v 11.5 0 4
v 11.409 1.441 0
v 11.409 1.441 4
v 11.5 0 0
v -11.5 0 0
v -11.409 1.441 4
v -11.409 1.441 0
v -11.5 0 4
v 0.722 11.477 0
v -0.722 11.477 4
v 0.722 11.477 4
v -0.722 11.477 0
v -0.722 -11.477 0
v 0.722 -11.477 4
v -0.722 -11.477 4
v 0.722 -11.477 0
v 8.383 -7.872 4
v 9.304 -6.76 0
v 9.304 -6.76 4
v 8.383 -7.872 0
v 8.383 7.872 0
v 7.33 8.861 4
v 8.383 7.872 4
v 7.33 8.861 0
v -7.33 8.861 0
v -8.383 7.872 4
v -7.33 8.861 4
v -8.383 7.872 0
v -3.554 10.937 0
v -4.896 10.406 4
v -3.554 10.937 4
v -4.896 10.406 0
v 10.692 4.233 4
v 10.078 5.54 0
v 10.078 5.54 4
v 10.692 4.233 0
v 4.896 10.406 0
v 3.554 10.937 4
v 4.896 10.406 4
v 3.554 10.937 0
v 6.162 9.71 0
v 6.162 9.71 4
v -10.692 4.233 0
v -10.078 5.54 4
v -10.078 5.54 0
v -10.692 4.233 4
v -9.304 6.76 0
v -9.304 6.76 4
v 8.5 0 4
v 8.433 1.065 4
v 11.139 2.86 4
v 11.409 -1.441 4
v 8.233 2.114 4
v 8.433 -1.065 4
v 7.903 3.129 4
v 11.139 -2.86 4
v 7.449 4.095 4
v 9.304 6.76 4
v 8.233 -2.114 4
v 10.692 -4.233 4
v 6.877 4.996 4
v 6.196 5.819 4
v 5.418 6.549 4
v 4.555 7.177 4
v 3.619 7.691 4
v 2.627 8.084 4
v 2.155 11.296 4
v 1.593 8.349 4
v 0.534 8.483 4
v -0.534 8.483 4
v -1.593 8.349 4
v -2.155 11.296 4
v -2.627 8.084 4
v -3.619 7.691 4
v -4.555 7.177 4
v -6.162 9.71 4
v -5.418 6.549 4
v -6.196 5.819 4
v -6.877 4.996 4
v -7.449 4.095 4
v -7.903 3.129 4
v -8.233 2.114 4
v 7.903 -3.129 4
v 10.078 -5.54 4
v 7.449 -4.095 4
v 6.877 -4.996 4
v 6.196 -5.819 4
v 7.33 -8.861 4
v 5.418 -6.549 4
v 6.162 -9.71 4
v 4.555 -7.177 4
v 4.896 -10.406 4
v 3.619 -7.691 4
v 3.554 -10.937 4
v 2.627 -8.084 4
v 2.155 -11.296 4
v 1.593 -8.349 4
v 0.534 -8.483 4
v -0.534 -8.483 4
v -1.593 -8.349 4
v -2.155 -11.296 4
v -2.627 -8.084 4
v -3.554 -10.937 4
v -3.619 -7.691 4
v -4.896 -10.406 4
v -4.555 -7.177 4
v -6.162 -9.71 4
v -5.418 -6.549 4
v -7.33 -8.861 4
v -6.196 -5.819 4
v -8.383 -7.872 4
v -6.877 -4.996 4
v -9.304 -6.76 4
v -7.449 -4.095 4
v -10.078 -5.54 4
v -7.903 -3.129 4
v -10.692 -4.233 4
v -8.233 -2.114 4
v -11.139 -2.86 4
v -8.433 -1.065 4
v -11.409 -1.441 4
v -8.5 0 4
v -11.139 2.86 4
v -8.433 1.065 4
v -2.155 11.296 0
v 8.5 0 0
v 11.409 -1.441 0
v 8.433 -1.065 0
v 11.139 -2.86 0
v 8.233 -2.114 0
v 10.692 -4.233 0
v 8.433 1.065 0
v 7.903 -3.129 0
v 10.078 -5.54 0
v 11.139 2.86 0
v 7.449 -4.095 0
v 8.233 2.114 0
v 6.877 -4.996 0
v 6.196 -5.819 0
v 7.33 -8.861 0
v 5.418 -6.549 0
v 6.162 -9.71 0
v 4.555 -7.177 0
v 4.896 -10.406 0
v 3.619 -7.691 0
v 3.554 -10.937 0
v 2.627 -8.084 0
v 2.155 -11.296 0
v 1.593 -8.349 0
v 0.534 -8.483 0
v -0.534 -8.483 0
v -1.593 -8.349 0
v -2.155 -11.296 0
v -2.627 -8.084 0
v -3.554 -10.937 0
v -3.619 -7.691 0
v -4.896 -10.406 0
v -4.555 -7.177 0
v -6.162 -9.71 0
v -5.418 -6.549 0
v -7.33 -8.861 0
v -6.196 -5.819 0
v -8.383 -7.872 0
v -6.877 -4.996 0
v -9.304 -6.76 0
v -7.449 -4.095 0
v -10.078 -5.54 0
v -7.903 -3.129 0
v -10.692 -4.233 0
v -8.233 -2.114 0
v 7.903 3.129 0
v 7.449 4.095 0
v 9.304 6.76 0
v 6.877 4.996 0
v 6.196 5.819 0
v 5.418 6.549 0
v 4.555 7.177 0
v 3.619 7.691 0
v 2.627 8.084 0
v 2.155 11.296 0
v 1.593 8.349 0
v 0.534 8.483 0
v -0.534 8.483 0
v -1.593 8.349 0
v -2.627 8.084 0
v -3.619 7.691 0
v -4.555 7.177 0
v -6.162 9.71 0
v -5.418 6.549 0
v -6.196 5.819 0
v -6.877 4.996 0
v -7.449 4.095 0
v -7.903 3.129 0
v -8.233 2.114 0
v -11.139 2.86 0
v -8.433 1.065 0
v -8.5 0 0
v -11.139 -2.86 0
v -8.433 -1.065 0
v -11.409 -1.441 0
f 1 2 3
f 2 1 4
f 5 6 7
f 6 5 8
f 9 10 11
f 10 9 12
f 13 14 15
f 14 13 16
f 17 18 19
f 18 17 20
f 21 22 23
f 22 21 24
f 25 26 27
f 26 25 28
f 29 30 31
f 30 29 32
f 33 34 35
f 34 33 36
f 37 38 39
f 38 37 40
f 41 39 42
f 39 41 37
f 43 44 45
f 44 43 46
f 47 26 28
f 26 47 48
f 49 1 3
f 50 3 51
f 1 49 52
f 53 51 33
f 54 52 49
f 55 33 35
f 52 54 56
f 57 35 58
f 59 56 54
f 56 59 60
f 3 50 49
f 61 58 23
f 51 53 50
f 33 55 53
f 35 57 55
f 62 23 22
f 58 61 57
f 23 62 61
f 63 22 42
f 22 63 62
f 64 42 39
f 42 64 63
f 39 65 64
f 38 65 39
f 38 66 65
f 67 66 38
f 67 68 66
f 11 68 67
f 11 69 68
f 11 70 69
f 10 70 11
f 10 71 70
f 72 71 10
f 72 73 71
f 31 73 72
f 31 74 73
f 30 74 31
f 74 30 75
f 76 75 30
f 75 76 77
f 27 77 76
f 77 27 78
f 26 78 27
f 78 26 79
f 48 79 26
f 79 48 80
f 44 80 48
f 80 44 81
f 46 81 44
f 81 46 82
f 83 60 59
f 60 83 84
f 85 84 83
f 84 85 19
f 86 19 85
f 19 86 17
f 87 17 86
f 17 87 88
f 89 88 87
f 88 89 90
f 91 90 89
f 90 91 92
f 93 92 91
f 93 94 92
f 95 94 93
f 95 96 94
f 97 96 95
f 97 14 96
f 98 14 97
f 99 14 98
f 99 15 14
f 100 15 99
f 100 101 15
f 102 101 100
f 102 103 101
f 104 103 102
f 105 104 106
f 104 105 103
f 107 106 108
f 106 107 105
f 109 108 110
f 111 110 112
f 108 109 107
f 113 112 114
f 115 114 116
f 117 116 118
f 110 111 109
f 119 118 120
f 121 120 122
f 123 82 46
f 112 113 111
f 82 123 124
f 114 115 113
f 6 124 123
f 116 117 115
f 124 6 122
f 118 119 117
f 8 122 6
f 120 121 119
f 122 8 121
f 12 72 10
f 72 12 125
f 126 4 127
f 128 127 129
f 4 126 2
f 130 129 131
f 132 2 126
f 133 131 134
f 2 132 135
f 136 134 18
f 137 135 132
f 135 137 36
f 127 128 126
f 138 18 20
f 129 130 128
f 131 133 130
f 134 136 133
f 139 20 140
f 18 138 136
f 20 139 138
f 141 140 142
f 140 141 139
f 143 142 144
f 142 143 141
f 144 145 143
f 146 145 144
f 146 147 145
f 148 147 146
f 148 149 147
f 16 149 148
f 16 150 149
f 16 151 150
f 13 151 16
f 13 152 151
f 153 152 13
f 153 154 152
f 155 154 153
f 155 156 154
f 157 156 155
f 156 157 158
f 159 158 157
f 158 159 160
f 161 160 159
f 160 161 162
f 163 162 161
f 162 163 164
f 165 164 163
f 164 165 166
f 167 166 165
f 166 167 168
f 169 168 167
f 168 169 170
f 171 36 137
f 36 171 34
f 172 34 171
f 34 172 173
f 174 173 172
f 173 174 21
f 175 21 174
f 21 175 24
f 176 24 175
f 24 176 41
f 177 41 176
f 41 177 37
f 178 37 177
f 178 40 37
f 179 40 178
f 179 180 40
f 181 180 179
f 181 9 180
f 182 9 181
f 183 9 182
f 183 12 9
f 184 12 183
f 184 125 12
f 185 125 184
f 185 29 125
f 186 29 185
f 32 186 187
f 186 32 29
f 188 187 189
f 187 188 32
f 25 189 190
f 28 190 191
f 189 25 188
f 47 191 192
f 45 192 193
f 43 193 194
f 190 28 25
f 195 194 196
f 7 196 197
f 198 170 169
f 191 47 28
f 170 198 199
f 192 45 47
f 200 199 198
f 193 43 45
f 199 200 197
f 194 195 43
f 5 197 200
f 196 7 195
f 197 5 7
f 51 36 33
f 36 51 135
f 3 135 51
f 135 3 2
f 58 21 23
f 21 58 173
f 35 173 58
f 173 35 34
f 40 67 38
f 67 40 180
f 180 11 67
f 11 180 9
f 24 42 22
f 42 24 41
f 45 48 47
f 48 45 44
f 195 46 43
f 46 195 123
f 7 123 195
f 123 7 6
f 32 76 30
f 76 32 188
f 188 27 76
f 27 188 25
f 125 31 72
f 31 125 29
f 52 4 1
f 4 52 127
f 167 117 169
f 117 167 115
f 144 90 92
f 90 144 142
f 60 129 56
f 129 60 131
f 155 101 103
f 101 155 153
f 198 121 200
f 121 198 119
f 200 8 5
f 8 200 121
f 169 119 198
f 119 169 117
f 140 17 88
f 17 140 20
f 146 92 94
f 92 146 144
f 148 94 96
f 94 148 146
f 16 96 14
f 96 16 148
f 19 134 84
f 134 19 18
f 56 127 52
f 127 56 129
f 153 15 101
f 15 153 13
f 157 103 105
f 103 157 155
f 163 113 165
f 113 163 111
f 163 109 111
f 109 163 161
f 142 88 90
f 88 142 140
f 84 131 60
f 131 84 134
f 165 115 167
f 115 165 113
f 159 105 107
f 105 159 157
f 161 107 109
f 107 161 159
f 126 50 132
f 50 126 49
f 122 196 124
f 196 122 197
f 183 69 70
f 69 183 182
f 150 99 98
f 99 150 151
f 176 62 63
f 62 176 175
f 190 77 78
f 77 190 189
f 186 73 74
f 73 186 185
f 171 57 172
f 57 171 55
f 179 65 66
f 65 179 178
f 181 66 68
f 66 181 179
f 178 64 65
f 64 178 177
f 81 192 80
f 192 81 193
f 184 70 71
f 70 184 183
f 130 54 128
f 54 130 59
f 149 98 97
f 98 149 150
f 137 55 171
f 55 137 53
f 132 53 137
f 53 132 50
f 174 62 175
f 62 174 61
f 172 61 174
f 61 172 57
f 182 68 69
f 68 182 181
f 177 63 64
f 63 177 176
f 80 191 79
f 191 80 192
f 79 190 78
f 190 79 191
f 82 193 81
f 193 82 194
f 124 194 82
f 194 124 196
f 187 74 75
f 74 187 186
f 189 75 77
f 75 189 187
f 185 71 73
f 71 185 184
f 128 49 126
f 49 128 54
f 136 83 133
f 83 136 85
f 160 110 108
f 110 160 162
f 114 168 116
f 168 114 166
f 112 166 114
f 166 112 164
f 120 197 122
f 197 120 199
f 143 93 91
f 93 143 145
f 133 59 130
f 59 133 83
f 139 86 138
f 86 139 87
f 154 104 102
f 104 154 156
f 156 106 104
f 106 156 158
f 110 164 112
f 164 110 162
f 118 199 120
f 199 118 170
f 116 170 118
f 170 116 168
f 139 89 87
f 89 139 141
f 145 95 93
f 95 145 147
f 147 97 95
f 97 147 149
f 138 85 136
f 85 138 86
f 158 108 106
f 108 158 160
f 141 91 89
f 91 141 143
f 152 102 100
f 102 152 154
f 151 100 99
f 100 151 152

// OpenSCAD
$fn = 50;


difference() {
	union() {
		translate(v = [0, 0, 0]) {
			rotate(a = [0, 0, 0]) {
				cylinder(h = 4, r = 11.5000000000);
			}
		}
	}
	union() {
		translate(v = [0, 0, 0]) {
			rotate(a = [0, 0, 0]) {
				cylinder(h = 4, r = 8.5000000000);
			}
		}
	}
}
